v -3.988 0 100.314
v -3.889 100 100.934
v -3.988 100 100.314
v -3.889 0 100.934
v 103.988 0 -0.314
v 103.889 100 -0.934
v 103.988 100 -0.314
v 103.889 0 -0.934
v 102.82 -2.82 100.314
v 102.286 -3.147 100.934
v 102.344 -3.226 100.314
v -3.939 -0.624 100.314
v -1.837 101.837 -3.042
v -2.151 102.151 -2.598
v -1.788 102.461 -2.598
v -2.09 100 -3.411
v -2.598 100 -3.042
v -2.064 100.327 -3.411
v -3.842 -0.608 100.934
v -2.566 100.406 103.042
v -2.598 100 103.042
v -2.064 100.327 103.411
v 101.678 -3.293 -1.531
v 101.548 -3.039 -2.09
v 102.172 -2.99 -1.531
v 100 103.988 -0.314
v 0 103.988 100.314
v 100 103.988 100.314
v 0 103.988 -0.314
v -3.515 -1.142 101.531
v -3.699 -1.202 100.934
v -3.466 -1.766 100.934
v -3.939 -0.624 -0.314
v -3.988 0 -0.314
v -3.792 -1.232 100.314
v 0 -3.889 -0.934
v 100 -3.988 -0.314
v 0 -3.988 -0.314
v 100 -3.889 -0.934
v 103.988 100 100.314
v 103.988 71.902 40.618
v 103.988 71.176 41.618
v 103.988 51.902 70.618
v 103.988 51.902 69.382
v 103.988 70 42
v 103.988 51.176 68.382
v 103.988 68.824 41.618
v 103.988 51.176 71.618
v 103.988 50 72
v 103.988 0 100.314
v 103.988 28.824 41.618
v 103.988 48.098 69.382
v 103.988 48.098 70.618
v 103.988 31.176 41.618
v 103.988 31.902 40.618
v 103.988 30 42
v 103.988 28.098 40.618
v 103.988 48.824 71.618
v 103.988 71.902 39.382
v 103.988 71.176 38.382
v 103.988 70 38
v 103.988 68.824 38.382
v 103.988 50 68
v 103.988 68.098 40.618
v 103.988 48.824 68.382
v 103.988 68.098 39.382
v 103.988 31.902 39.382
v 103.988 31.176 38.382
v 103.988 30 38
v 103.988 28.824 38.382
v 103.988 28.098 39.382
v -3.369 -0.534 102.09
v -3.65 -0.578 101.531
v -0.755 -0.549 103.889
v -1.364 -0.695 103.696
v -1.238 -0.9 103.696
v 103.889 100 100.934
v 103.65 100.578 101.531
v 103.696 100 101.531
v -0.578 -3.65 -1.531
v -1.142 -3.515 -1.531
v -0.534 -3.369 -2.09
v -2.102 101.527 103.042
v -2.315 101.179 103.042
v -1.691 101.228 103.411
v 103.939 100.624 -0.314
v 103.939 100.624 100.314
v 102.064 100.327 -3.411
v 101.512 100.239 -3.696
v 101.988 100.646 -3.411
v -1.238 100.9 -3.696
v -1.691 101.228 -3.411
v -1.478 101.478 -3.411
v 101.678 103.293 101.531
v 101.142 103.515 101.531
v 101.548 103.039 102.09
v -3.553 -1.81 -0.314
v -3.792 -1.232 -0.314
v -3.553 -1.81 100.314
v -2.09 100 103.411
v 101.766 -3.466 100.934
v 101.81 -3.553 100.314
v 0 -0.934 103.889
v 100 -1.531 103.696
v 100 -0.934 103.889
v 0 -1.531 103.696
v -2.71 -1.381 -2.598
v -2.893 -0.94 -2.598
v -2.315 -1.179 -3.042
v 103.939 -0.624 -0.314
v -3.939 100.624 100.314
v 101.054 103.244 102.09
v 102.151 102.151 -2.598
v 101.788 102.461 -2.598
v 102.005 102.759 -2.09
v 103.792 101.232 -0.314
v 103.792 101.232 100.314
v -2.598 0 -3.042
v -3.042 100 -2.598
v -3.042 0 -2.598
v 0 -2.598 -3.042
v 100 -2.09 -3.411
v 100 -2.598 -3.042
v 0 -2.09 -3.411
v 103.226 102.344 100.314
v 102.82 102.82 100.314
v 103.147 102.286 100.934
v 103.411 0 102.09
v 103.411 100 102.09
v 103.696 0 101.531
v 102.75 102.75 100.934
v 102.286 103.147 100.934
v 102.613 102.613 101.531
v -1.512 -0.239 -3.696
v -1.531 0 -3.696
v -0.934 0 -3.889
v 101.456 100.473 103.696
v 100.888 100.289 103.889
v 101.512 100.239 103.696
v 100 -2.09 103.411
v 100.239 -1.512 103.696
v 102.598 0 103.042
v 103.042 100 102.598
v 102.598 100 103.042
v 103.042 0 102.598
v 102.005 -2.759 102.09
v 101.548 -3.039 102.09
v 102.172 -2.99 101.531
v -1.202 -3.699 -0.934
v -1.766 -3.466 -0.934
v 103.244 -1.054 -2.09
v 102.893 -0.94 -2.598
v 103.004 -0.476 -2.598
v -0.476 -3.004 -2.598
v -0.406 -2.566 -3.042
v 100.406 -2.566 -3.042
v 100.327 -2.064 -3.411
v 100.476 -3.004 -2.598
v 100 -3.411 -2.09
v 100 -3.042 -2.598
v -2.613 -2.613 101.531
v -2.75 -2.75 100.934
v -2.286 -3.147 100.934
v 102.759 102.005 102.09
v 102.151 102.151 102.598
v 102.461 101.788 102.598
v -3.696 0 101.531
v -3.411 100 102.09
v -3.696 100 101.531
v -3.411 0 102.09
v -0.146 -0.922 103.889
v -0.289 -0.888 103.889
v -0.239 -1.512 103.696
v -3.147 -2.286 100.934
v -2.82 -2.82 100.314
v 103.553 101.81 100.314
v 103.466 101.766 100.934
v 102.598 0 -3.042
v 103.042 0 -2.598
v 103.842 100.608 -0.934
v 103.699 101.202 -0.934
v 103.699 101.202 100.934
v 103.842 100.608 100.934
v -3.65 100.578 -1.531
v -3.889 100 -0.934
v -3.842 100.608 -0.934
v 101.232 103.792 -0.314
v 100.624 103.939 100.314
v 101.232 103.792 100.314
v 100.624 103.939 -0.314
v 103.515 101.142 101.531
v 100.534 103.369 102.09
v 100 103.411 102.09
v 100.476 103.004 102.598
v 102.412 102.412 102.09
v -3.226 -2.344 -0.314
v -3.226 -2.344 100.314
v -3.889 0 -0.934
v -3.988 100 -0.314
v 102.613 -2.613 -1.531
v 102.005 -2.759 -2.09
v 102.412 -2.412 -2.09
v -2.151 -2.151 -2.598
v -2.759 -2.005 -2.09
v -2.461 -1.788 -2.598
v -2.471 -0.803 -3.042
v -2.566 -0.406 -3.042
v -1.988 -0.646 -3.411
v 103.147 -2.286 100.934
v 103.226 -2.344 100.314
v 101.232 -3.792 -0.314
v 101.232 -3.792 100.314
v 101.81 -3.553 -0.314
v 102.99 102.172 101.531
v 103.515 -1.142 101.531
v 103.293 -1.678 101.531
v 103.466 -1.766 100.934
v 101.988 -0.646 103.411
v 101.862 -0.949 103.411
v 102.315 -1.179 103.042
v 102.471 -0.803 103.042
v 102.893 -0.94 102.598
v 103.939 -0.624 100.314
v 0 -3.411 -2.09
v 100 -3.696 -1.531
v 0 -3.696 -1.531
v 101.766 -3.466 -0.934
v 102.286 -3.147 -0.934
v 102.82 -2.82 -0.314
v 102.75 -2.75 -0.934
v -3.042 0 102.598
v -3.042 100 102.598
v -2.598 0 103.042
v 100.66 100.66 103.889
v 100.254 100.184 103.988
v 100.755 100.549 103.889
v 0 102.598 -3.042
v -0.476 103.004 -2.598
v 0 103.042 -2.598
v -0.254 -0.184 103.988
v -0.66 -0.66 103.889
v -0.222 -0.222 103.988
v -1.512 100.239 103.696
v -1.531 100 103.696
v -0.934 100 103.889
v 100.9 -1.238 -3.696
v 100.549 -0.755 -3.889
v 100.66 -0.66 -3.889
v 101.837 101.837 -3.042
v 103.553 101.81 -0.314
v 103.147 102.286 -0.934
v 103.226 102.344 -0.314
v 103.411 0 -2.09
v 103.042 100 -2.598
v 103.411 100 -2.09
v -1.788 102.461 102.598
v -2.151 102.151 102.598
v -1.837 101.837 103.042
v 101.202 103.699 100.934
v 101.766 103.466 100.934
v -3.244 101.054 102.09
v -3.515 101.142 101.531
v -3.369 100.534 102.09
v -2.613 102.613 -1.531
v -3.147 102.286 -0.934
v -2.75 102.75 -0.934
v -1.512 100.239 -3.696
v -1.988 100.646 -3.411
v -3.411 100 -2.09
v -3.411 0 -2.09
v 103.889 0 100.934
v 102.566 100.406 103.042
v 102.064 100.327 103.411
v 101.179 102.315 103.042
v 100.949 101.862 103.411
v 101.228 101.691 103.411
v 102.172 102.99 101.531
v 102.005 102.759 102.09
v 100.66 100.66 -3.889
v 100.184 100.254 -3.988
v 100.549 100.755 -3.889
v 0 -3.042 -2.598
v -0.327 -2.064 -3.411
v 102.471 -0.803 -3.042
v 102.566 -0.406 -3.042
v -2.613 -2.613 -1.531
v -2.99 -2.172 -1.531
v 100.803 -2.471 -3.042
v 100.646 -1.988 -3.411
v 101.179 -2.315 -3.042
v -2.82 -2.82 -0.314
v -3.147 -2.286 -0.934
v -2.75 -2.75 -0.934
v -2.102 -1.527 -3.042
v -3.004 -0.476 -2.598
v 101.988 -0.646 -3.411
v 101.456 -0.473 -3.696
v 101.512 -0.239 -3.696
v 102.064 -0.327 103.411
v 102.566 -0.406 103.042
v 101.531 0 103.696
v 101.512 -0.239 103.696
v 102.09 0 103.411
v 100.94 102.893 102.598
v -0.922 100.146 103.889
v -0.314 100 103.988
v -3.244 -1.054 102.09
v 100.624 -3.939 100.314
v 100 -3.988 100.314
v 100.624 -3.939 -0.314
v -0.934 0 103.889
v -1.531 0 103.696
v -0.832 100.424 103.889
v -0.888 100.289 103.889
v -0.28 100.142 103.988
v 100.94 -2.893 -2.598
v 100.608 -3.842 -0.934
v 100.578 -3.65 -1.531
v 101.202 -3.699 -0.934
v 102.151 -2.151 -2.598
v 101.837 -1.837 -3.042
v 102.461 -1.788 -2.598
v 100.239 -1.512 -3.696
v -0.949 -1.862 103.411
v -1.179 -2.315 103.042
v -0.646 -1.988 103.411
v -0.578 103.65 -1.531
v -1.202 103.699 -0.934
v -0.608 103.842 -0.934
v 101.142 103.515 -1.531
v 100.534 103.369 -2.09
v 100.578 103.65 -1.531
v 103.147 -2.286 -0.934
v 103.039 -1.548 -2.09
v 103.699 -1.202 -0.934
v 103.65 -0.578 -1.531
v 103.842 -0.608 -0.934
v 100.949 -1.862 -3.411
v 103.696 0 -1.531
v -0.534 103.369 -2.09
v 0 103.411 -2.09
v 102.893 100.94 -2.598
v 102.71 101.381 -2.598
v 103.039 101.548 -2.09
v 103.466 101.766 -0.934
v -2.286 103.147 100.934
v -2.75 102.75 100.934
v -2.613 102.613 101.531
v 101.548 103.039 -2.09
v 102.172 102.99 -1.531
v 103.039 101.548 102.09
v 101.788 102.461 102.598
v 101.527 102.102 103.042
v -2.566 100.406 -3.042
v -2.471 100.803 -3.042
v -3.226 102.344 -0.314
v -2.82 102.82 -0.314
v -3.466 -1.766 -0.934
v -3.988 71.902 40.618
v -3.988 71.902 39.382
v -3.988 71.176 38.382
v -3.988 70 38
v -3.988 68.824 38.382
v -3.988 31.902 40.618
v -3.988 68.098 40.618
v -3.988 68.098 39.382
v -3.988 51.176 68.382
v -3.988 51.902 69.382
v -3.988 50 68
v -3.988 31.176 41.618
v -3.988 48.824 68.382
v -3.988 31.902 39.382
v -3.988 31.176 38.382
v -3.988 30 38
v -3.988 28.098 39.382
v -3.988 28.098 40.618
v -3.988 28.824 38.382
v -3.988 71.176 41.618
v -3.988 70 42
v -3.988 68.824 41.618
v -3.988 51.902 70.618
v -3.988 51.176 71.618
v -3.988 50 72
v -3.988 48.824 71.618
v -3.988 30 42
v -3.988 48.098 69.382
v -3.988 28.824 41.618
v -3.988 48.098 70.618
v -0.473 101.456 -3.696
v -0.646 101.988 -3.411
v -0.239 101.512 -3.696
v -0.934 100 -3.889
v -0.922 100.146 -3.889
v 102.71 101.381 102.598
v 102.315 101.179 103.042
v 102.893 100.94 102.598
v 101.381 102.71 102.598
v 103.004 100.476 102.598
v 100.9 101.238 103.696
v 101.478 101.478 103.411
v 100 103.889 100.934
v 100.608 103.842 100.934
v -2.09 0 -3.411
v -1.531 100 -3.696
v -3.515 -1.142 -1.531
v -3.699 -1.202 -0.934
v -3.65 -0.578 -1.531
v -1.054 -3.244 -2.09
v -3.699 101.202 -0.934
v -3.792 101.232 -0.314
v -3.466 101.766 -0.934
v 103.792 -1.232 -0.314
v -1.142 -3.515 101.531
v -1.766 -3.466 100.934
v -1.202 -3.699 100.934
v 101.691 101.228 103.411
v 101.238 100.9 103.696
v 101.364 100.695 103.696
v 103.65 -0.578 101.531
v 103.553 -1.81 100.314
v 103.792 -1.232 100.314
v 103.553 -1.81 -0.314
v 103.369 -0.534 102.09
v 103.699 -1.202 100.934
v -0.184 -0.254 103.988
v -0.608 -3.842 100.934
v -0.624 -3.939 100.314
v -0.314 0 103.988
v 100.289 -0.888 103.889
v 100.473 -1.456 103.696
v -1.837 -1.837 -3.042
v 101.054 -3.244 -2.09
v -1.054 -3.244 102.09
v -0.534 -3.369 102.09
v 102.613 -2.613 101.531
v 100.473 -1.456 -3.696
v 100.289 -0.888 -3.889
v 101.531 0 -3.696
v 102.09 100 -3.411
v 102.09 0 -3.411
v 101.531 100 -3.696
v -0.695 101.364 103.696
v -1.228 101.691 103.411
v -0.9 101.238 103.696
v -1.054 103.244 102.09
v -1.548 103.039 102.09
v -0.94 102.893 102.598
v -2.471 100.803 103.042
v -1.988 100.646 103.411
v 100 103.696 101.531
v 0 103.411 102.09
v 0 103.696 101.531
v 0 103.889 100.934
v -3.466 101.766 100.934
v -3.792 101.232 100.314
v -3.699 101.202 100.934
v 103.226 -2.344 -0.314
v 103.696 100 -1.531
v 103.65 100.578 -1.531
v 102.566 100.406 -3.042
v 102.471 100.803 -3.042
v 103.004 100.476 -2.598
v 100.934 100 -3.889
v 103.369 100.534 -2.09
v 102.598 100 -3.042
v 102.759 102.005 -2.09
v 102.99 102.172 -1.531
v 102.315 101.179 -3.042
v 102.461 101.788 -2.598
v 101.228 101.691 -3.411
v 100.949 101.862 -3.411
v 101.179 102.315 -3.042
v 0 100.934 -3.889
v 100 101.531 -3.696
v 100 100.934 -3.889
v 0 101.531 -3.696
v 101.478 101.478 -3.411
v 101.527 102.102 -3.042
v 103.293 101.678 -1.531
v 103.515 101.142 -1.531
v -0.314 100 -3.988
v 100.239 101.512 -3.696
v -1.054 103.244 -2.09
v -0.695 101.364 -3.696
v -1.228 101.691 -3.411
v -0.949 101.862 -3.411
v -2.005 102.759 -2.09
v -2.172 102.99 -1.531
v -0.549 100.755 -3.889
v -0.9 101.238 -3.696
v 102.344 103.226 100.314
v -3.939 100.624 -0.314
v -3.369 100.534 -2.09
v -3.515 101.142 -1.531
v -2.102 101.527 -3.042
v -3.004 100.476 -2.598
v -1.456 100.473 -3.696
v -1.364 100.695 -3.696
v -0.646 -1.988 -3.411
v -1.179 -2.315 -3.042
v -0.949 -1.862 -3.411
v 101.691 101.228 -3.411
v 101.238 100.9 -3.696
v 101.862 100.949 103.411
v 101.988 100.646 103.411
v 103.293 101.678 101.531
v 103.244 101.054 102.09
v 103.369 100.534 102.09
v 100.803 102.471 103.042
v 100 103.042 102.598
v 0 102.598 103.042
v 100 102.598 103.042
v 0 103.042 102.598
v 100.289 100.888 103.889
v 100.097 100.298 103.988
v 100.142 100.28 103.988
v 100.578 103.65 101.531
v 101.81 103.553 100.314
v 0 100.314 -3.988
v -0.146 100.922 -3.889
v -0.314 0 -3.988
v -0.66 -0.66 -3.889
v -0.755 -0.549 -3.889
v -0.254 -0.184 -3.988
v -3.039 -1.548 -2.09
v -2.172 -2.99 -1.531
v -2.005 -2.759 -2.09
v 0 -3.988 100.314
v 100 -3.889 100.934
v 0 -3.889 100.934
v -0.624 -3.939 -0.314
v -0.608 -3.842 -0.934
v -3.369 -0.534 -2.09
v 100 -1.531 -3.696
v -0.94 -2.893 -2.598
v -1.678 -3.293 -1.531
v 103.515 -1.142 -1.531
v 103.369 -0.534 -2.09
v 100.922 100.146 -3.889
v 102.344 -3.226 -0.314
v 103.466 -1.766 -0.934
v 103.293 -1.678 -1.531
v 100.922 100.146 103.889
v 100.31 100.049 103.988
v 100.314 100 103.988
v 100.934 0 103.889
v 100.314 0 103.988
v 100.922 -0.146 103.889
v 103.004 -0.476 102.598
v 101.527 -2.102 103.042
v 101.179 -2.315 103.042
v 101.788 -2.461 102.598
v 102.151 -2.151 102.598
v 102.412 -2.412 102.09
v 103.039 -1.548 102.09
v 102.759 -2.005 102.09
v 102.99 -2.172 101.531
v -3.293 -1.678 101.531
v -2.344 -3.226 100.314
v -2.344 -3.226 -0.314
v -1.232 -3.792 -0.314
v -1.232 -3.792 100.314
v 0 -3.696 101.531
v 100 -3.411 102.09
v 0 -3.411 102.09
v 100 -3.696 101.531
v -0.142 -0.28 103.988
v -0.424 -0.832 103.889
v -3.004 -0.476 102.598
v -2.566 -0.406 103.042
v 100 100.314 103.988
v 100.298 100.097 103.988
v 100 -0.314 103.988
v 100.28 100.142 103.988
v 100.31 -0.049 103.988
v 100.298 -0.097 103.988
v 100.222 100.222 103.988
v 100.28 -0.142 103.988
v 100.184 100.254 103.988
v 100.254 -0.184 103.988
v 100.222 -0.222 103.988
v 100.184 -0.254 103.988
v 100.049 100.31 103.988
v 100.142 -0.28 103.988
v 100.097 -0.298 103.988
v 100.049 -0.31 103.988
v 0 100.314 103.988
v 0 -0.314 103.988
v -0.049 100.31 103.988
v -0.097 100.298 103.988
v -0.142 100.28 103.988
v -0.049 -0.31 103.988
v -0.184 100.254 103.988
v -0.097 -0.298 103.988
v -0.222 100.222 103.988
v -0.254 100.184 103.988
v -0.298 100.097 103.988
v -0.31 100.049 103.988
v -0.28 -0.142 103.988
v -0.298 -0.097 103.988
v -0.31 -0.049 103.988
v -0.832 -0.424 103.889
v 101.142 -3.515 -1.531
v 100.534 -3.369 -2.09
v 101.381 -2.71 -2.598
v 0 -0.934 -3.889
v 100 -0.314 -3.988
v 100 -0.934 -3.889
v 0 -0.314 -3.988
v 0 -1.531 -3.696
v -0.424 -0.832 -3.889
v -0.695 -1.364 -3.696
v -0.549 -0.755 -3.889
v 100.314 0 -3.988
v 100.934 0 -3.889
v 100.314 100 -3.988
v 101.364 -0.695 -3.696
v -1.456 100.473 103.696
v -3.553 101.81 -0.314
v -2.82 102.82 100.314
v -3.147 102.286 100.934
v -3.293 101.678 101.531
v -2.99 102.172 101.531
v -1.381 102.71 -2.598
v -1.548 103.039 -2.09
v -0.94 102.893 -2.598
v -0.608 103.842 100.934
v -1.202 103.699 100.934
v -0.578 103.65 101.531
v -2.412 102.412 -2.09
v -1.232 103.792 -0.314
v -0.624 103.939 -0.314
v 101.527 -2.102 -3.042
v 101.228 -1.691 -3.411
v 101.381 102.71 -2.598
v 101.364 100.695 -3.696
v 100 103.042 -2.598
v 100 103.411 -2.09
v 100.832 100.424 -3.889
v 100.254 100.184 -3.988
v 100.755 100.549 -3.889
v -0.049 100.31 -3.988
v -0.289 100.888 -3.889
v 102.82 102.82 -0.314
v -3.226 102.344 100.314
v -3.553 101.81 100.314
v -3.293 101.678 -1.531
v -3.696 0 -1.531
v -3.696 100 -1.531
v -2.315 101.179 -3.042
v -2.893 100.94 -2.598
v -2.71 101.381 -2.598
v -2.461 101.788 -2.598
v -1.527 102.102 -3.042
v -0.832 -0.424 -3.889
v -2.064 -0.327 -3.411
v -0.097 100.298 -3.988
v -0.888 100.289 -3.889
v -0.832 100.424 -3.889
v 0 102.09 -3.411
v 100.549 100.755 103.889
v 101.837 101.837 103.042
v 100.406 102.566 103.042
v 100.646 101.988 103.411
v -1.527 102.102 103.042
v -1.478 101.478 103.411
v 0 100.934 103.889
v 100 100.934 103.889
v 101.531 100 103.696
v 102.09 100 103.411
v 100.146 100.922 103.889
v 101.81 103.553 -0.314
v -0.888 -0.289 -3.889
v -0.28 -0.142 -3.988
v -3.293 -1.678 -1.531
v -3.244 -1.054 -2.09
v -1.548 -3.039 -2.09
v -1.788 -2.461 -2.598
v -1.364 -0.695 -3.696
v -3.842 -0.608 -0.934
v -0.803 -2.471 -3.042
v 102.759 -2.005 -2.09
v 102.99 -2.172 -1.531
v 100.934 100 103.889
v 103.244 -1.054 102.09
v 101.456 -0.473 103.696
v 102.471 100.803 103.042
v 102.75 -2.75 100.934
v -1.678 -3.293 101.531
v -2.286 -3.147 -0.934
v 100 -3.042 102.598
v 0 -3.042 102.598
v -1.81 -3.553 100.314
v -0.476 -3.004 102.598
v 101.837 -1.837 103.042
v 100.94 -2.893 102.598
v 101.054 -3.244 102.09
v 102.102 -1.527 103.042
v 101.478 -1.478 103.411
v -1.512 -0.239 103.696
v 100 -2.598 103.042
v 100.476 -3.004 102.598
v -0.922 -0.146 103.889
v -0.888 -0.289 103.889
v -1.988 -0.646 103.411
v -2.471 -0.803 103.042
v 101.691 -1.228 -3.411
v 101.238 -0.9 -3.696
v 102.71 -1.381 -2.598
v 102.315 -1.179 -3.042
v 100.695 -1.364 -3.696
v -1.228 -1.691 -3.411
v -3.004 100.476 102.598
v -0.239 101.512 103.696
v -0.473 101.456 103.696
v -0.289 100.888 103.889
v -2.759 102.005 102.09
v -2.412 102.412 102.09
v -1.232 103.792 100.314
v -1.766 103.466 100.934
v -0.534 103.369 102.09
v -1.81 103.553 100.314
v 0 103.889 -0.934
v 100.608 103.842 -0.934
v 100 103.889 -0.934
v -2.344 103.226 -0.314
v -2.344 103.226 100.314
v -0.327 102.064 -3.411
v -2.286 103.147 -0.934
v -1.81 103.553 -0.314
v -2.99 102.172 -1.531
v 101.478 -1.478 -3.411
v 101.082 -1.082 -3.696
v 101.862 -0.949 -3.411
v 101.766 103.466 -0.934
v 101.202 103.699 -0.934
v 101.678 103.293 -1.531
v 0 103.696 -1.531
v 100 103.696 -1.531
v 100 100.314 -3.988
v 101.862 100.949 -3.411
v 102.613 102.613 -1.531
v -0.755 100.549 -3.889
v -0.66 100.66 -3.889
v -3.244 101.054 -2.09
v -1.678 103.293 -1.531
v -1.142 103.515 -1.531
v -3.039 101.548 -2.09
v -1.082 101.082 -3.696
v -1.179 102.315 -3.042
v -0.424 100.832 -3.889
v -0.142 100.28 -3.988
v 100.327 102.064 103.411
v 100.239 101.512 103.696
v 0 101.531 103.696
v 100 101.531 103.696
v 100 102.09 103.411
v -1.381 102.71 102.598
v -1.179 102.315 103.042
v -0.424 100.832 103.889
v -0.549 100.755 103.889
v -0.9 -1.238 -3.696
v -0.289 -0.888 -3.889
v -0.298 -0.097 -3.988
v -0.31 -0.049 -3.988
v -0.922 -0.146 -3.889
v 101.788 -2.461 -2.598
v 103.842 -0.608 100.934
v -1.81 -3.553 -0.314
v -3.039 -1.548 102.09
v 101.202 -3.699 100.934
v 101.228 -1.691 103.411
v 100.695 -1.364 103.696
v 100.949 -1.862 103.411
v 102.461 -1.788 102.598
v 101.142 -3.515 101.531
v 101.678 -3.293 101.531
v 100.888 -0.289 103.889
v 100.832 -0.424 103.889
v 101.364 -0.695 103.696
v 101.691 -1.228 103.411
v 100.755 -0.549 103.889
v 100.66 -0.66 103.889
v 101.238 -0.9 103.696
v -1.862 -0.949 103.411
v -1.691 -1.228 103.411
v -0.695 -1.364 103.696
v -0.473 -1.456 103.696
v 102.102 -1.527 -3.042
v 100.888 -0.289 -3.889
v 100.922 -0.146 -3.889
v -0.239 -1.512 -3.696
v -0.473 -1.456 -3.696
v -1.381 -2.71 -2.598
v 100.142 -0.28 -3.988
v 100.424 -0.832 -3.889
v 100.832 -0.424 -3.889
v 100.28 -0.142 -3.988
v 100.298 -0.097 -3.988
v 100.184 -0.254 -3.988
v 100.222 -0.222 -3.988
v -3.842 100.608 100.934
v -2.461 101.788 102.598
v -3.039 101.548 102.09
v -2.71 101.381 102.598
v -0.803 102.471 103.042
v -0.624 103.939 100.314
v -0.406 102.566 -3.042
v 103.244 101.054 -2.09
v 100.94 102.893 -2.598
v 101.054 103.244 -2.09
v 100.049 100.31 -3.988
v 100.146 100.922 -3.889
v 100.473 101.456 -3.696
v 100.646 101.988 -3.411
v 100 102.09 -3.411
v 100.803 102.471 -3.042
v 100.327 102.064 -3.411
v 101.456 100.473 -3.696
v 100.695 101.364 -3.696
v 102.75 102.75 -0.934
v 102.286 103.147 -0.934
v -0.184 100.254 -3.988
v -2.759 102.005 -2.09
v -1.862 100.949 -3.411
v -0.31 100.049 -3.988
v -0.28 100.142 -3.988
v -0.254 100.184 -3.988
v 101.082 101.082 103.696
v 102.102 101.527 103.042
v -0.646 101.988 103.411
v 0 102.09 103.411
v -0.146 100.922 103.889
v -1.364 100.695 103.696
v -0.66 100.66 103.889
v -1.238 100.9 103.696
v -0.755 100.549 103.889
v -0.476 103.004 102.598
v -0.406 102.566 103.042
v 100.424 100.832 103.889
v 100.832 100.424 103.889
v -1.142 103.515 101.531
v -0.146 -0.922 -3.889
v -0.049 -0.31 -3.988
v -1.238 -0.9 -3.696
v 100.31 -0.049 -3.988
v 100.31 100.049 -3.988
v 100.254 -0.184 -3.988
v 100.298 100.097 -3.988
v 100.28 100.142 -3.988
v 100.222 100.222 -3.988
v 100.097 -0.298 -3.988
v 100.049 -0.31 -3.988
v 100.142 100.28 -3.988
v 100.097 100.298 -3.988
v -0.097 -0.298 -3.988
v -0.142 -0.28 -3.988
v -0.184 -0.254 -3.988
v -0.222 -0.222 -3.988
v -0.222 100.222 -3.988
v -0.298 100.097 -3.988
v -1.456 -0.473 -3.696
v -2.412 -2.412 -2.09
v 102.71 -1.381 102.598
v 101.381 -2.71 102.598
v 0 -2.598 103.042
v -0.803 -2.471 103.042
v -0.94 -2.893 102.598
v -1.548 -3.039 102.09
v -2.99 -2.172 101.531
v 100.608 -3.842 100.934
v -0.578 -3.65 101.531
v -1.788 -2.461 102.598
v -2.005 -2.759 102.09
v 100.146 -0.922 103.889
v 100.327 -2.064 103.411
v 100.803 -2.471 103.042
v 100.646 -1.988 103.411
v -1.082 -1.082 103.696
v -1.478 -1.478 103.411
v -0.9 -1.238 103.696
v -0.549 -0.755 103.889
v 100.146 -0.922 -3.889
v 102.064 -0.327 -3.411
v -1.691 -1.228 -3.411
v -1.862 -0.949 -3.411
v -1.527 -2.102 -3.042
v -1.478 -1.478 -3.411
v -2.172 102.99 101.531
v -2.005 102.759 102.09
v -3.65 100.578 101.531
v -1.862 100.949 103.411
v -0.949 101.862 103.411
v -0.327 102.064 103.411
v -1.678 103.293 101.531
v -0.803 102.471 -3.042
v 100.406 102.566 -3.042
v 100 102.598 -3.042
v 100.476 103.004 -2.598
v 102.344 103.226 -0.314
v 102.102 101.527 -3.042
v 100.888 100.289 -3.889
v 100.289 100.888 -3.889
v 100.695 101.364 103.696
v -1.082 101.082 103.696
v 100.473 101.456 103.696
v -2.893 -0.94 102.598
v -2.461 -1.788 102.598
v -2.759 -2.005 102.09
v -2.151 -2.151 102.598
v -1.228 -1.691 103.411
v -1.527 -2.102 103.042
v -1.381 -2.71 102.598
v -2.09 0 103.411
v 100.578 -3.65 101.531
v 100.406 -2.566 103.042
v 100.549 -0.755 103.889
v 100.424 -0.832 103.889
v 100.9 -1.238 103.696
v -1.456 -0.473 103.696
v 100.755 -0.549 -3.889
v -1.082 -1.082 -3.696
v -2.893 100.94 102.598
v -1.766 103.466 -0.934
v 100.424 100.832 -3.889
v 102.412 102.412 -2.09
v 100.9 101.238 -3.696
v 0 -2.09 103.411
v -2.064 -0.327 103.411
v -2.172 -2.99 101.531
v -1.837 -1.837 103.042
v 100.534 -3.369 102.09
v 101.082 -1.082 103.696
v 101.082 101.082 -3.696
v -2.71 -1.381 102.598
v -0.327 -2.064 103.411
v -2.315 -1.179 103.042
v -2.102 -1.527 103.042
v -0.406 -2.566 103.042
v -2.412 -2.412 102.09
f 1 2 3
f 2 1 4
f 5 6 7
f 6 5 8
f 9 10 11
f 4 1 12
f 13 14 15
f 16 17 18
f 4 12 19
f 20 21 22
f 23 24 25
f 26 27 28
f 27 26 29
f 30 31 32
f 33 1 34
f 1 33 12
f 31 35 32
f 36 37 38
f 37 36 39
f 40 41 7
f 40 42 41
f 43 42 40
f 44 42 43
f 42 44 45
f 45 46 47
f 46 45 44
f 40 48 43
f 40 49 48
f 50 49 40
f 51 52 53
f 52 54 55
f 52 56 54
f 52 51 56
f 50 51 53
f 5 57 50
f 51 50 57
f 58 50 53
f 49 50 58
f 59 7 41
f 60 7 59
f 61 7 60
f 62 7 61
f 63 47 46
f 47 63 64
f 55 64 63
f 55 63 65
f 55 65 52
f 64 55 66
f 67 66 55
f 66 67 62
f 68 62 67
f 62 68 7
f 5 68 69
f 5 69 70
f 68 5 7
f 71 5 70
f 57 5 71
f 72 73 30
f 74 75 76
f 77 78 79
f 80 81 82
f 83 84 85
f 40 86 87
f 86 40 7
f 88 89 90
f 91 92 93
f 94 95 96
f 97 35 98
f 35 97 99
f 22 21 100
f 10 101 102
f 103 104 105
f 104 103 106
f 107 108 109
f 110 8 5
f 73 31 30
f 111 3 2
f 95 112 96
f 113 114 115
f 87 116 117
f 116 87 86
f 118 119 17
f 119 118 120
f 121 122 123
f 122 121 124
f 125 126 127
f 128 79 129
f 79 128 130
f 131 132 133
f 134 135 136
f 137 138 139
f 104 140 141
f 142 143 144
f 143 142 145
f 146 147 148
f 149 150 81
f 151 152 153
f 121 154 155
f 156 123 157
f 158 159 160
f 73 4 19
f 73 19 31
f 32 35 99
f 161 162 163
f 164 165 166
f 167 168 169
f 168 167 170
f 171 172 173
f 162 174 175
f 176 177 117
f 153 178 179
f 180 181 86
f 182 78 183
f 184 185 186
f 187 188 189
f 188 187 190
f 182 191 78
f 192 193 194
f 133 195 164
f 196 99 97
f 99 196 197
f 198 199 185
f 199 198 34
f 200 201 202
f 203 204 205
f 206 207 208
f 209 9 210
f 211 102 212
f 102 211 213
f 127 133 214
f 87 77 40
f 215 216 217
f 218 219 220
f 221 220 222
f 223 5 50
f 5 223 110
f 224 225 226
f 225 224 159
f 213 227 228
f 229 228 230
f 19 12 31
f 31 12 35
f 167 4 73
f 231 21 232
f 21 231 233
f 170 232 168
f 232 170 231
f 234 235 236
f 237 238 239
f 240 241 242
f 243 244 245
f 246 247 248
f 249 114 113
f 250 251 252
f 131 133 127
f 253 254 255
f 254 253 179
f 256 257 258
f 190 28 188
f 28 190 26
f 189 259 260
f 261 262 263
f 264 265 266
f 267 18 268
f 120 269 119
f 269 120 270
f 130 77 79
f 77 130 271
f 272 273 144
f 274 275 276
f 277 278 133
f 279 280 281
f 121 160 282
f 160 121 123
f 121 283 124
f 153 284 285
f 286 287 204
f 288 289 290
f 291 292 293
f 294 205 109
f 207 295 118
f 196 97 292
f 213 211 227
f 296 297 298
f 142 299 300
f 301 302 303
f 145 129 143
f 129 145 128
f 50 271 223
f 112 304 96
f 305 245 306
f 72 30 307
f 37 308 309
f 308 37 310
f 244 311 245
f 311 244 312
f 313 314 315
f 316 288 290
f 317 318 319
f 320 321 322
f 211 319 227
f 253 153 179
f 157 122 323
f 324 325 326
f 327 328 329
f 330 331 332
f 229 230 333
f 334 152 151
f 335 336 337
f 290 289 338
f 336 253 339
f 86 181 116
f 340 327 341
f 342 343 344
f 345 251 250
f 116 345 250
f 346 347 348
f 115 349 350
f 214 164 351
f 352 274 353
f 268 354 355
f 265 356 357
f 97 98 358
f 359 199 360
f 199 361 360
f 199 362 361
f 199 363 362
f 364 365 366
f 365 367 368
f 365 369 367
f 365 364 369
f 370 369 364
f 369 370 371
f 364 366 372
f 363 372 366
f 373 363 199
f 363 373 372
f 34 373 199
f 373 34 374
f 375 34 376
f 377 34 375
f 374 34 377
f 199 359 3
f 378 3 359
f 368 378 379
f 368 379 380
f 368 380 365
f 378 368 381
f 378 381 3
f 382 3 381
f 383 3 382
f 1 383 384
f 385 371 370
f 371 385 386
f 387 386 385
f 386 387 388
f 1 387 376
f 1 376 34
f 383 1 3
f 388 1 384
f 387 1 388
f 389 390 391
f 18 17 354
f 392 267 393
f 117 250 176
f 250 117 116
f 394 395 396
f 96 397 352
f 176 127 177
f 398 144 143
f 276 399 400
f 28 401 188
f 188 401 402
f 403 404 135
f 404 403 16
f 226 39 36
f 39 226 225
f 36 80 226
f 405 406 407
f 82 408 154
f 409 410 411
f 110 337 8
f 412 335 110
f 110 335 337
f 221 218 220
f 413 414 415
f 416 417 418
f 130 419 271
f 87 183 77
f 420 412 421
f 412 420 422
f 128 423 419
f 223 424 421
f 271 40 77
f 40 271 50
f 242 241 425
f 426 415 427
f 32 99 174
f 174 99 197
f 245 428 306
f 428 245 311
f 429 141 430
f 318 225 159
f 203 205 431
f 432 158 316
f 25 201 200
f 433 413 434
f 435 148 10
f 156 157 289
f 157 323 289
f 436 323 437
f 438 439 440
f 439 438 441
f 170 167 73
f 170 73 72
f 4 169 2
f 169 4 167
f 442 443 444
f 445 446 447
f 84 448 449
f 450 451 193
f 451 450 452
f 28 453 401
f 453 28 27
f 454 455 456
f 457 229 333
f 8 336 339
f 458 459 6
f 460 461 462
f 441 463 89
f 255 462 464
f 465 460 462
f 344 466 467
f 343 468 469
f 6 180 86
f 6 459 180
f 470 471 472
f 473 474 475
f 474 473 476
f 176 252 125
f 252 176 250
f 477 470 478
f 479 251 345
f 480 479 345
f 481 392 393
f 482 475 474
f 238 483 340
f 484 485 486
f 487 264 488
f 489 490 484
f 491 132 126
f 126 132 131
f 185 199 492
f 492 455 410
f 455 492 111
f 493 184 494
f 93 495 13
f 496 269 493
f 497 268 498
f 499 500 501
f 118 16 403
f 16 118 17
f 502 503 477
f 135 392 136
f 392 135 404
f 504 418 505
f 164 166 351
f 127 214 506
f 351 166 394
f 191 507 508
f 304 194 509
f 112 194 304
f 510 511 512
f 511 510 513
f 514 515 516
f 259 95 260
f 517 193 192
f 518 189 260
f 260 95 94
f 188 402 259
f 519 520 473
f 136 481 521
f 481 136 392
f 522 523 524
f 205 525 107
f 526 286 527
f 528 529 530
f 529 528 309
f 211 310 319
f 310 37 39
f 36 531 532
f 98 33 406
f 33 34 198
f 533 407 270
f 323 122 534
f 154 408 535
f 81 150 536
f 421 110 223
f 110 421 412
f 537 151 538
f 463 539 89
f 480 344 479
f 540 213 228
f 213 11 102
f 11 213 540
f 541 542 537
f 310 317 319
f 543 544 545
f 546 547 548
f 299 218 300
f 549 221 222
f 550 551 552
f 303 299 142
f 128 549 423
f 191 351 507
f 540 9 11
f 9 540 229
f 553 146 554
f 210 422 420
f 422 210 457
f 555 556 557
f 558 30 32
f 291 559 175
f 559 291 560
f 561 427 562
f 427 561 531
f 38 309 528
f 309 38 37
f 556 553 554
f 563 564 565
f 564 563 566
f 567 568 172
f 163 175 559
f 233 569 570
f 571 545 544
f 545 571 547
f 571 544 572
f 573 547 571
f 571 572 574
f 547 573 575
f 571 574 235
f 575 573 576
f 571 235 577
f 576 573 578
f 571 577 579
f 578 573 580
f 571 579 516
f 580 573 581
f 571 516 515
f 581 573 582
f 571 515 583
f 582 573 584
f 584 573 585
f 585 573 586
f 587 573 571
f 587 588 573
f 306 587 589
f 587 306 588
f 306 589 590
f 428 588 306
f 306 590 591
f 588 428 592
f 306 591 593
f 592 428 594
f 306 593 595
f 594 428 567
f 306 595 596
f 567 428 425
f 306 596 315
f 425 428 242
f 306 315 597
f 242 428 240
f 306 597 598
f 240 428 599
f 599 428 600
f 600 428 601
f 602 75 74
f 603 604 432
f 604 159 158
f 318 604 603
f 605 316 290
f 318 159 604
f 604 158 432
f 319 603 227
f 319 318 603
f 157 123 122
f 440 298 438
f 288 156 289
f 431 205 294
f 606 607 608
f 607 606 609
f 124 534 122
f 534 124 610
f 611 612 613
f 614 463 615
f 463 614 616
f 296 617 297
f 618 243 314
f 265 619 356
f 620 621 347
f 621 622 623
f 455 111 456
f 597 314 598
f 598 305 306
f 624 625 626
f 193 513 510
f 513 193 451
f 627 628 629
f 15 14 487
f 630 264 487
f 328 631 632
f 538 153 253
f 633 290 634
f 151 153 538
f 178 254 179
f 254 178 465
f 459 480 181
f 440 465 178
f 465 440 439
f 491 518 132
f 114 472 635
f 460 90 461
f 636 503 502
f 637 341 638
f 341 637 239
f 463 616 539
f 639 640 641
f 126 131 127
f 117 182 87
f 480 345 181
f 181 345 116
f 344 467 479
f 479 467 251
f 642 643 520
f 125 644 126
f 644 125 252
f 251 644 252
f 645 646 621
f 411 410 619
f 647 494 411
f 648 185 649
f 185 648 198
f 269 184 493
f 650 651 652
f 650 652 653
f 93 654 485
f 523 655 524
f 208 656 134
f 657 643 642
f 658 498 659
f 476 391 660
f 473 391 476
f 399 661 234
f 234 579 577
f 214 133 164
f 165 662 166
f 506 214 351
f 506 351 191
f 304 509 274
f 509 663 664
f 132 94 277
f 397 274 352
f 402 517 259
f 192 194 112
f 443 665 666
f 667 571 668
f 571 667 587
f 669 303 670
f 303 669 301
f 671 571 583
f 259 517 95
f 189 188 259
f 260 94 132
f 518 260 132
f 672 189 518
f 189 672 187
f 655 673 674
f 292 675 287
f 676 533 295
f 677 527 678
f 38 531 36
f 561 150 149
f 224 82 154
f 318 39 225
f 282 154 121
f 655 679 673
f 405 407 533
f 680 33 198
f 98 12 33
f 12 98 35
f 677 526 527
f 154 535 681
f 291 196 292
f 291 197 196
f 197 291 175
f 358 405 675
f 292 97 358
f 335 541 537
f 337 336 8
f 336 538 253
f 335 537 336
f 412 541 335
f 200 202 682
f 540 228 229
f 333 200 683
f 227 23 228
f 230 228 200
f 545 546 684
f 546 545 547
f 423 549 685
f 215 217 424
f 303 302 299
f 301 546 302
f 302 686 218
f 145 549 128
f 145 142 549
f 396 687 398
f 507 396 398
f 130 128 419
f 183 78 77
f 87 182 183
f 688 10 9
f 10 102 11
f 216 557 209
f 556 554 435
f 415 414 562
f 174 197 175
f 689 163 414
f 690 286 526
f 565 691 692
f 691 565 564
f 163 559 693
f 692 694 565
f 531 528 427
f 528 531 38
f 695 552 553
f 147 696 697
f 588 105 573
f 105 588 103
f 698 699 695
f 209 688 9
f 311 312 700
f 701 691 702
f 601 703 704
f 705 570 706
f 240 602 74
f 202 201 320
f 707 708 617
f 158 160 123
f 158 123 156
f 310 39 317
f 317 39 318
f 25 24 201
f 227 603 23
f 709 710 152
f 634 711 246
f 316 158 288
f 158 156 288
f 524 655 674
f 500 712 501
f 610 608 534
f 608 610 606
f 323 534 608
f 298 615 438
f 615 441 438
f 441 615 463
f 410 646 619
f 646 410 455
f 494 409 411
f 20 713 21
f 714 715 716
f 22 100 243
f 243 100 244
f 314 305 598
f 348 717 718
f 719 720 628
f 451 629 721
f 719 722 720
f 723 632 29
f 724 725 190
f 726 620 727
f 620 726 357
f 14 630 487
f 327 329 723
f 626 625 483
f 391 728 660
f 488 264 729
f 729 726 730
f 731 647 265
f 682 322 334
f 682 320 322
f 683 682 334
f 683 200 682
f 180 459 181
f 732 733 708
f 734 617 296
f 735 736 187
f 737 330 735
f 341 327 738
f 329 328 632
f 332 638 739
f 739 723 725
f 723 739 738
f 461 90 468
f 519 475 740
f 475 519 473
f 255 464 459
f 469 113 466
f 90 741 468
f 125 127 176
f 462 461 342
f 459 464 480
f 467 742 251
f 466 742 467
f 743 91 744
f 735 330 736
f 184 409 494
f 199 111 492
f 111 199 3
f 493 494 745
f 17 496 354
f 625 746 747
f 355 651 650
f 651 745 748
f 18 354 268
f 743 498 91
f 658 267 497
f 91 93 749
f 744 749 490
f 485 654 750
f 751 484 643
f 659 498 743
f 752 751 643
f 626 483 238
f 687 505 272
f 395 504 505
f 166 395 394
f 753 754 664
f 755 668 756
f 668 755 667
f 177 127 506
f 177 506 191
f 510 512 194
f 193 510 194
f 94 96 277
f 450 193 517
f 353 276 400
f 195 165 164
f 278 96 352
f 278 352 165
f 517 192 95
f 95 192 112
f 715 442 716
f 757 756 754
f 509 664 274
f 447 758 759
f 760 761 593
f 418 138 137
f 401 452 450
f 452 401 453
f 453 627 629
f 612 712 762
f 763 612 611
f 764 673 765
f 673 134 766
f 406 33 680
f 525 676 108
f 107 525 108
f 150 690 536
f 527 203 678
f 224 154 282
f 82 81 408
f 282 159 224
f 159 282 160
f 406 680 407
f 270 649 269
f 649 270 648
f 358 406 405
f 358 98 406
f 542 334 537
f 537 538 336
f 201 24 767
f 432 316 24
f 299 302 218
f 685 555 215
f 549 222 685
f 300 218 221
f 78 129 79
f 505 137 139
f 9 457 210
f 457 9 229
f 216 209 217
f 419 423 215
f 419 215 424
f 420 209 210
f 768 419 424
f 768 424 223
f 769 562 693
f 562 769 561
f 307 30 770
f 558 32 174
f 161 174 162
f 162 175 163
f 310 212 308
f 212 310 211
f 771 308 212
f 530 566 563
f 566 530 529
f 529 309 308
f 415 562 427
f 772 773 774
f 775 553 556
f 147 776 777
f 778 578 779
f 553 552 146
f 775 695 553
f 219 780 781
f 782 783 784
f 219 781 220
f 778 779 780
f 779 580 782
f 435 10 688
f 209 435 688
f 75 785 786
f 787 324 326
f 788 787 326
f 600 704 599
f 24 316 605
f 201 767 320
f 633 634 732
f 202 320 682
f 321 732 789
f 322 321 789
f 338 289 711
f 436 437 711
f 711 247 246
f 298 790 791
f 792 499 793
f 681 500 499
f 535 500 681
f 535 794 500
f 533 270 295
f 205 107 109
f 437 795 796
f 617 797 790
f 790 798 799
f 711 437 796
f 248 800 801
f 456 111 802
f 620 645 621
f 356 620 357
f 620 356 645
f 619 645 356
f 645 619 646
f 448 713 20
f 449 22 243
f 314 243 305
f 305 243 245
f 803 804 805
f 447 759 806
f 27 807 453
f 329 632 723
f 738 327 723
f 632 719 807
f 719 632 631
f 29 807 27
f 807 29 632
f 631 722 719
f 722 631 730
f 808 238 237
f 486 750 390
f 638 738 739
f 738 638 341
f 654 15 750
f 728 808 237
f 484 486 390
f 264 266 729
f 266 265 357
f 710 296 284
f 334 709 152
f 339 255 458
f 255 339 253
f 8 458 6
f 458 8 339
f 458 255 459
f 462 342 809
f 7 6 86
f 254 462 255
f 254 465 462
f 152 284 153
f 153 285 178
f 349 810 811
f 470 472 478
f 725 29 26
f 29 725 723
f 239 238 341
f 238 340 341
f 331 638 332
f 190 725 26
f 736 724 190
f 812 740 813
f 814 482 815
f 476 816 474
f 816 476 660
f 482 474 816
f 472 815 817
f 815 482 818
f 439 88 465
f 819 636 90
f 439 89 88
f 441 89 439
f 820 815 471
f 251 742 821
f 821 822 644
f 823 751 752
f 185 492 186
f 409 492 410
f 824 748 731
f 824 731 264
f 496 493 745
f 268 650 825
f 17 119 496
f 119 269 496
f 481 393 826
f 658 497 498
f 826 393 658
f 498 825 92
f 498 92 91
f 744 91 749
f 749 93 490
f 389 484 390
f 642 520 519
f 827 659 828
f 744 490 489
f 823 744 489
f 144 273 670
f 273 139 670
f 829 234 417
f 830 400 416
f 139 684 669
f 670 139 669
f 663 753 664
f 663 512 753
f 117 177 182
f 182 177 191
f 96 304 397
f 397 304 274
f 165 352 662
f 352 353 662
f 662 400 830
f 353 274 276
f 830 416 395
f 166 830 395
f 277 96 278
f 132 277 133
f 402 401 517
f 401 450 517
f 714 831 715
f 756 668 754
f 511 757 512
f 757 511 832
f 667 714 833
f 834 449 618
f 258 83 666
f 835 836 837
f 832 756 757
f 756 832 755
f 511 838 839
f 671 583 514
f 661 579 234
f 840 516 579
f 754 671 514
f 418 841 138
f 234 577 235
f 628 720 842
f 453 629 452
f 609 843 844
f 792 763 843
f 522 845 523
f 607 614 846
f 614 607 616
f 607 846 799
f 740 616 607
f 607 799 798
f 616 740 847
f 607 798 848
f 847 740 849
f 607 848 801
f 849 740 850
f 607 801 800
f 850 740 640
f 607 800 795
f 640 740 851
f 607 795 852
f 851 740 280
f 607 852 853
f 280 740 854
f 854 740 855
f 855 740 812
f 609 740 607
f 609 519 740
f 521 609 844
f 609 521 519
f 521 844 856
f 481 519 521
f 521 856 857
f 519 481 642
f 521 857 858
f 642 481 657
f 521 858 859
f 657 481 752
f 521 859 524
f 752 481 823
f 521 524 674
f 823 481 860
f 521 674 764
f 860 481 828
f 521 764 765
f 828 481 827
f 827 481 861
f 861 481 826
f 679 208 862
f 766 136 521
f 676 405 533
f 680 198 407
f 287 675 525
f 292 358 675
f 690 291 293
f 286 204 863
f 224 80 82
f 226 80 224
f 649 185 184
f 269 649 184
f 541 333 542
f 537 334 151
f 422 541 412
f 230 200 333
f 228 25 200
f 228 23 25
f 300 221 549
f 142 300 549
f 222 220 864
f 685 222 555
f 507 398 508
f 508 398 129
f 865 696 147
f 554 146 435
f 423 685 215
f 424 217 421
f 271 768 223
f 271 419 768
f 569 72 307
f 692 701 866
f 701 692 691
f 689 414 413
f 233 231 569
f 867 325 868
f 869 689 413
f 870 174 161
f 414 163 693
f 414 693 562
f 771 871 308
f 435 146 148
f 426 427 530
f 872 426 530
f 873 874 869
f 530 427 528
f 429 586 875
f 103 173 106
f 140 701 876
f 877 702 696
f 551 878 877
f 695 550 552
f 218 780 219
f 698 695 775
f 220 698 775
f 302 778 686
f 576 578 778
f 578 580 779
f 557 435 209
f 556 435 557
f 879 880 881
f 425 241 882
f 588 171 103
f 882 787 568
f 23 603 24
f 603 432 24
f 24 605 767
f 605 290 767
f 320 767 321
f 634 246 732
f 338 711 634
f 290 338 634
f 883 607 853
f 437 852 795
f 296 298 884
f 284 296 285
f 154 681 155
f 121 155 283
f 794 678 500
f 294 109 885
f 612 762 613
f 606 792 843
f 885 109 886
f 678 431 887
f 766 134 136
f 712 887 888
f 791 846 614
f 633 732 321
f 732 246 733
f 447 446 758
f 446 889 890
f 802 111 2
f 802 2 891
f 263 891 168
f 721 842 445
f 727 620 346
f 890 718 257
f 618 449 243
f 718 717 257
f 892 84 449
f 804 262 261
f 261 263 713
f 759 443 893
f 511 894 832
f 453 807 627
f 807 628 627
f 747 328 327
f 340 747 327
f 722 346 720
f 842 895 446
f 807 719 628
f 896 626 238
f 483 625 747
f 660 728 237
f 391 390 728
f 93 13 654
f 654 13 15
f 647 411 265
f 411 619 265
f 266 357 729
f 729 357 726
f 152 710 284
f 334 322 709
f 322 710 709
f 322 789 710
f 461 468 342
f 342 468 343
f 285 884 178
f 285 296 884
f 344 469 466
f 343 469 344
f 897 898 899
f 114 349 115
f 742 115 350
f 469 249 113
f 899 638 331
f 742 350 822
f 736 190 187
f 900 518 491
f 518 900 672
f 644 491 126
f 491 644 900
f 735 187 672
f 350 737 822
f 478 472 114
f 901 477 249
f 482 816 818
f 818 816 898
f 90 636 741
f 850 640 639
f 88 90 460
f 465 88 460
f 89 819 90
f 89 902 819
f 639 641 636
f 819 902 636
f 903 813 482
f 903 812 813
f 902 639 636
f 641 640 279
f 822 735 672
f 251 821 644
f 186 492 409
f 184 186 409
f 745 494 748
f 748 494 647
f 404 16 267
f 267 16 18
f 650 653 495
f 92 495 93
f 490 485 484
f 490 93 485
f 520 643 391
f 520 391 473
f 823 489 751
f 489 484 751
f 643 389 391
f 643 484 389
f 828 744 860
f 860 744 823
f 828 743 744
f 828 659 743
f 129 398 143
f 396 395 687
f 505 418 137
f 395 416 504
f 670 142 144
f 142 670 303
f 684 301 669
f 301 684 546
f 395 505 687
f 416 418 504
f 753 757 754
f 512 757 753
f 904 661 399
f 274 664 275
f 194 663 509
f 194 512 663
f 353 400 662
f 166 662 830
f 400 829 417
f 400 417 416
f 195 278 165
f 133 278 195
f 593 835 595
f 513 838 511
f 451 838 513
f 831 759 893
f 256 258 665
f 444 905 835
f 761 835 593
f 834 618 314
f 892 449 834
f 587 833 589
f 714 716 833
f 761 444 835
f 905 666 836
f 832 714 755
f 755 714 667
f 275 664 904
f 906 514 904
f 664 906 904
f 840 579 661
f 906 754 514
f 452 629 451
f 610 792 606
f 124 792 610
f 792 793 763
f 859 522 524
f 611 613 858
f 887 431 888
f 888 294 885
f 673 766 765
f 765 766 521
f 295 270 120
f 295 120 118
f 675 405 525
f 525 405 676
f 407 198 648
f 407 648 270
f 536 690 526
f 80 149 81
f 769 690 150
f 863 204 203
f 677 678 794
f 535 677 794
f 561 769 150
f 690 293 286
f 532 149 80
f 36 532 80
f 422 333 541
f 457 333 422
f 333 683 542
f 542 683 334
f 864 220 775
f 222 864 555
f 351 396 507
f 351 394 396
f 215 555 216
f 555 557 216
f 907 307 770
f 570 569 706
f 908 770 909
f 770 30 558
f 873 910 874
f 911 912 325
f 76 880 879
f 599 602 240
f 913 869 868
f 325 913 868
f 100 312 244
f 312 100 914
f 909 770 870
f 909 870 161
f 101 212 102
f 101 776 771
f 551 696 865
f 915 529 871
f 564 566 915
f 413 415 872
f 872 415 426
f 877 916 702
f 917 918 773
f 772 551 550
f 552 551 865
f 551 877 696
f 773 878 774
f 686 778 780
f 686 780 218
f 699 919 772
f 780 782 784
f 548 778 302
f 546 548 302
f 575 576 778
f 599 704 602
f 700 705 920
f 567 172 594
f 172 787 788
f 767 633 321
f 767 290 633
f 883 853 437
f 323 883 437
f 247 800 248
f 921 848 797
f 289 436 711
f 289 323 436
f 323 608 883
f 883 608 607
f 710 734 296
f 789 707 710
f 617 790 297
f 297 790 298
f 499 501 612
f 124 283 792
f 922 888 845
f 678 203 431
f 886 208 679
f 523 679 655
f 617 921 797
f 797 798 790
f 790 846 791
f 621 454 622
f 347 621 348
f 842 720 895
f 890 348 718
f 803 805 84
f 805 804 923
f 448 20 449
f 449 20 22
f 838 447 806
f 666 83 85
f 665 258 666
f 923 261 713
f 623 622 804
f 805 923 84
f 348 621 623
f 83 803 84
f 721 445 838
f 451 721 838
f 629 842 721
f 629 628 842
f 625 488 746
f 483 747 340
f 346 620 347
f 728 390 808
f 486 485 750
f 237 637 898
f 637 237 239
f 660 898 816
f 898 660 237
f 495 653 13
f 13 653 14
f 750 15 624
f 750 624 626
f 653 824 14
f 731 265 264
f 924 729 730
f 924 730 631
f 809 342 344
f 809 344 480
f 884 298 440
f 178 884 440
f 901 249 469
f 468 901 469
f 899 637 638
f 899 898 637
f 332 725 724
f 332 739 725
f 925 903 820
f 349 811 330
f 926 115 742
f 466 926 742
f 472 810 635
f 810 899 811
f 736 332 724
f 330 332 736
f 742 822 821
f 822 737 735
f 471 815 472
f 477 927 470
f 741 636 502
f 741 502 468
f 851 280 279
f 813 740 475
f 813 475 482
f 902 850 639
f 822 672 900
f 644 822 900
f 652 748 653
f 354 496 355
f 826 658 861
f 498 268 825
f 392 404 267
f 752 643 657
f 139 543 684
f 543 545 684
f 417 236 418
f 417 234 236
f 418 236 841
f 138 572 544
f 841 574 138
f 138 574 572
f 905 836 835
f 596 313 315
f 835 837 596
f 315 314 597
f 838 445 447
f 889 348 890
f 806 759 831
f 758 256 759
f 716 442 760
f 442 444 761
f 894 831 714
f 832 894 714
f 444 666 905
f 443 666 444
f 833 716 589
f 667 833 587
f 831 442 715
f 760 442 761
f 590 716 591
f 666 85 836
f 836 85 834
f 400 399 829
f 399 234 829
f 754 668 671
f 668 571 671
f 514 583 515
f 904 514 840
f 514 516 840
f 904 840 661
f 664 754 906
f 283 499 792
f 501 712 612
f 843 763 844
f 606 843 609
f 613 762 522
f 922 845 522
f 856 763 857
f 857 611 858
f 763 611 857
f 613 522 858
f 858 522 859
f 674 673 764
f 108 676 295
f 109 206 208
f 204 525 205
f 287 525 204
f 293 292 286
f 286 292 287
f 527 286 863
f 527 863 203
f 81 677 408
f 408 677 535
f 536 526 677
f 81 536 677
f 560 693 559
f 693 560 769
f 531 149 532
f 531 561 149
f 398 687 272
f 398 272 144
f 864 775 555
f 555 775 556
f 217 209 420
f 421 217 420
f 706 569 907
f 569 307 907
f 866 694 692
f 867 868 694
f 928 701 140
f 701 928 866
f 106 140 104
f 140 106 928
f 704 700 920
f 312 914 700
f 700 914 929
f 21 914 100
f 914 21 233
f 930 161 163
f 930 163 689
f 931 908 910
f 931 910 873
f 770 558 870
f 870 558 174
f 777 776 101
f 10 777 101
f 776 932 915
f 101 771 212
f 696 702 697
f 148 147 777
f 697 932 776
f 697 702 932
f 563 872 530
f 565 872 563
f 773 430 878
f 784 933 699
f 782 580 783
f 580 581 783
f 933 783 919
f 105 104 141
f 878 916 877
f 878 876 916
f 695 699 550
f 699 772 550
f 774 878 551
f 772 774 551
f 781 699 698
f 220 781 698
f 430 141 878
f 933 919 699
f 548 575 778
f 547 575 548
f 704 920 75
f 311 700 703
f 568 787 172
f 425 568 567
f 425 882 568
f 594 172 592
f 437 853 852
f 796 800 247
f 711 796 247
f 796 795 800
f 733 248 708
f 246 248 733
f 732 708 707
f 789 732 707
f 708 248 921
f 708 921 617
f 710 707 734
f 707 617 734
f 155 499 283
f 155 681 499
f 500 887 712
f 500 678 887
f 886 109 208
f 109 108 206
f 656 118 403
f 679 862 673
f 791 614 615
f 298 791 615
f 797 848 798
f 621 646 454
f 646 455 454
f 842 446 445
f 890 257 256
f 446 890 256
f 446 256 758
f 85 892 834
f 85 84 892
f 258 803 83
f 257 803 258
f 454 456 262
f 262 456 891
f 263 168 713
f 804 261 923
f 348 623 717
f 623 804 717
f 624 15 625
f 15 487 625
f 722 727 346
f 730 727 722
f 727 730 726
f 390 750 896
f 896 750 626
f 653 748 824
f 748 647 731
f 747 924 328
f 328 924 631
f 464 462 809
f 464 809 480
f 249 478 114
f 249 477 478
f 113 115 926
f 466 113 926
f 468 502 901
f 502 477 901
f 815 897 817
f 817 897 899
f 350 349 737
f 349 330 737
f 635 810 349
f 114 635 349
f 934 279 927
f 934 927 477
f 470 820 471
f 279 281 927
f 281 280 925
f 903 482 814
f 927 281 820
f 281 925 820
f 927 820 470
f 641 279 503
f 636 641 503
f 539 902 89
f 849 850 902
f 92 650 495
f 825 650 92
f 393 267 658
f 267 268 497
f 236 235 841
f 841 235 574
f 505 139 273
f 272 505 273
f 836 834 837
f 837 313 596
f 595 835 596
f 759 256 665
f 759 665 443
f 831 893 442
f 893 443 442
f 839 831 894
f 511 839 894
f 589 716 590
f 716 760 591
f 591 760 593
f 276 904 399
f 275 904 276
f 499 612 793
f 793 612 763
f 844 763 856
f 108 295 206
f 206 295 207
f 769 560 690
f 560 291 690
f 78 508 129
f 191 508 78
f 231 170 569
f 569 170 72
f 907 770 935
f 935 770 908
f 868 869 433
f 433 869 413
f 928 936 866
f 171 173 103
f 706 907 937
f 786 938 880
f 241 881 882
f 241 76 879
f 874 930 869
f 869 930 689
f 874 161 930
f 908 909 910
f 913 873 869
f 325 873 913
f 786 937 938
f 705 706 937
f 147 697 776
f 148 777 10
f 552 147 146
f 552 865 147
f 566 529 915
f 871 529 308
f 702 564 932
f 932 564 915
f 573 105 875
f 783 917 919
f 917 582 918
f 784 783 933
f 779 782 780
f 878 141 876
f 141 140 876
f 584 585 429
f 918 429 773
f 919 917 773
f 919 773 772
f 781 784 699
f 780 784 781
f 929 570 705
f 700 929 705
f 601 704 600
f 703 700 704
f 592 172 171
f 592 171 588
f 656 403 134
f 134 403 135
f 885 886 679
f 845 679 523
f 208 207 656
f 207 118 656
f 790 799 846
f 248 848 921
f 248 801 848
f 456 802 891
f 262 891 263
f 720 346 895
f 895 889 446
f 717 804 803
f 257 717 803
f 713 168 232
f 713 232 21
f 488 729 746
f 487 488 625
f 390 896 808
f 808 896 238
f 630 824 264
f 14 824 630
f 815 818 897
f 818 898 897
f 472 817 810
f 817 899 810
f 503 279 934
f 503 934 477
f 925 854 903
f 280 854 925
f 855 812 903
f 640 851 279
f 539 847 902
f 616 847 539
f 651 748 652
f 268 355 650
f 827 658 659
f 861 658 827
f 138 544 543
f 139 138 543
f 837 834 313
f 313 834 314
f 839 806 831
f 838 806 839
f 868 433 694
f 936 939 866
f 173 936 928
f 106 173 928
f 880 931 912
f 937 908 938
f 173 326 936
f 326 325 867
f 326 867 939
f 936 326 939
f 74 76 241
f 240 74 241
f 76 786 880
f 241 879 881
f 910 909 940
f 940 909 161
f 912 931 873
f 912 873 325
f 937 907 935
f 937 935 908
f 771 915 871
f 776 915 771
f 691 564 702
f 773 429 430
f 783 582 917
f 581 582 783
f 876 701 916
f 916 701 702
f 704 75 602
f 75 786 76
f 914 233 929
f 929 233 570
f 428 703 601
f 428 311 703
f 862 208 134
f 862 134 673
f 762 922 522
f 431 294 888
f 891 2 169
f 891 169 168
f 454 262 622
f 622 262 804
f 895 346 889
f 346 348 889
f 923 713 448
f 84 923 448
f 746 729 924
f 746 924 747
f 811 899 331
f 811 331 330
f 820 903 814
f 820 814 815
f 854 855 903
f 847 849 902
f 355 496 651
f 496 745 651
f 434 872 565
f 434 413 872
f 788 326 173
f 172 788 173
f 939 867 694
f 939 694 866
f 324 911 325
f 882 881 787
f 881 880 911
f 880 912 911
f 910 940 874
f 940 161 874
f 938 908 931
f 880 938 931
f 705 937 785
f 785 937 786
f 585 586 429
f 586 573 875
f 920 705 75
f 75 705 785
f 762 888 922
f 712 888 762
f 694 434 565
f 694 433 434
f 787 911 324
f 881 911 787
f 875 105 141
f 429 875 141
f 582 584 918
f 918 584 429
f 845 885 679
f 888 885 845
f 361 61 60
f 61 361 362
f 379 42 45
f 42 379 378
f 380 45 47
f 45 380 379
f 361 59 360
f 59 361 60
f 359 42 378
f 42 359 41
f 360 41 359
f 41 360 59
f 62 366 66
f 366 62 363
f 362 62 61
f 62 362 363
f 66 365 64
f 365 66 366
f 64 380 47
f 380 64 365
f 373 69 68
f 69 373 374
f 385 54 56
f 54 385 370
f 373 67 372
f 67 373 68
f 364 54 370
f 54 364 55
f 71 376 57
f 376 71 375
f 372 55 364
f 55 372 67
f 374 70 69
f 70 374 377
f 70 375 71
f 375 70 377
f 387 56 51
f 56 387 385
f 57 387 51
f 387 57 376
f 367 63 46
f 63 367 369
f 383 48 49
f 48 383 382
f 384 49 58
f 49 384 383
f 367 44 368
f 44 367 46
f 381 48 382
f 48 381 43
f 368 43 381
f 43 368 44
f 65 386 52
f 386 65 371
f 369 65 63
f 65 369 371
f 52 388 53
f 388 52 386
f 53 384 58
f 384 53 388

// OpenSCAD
difference(){
minkowski()
{
cube(100);
translate([0,0,0])
	sphere(4, $fn=40);
}
translate([-5,70,40])
	rotate([0,90,0])
		cylinder(110,2,2, $fn=10);
translate([-5,30,40])
	rotate([0,90,0])
		cylinder(110,2,2, $fn=10);
translate([-5,50,70])
	rotate([0,90,0])
		cylinder(110,2,2, $fn=10);
}
